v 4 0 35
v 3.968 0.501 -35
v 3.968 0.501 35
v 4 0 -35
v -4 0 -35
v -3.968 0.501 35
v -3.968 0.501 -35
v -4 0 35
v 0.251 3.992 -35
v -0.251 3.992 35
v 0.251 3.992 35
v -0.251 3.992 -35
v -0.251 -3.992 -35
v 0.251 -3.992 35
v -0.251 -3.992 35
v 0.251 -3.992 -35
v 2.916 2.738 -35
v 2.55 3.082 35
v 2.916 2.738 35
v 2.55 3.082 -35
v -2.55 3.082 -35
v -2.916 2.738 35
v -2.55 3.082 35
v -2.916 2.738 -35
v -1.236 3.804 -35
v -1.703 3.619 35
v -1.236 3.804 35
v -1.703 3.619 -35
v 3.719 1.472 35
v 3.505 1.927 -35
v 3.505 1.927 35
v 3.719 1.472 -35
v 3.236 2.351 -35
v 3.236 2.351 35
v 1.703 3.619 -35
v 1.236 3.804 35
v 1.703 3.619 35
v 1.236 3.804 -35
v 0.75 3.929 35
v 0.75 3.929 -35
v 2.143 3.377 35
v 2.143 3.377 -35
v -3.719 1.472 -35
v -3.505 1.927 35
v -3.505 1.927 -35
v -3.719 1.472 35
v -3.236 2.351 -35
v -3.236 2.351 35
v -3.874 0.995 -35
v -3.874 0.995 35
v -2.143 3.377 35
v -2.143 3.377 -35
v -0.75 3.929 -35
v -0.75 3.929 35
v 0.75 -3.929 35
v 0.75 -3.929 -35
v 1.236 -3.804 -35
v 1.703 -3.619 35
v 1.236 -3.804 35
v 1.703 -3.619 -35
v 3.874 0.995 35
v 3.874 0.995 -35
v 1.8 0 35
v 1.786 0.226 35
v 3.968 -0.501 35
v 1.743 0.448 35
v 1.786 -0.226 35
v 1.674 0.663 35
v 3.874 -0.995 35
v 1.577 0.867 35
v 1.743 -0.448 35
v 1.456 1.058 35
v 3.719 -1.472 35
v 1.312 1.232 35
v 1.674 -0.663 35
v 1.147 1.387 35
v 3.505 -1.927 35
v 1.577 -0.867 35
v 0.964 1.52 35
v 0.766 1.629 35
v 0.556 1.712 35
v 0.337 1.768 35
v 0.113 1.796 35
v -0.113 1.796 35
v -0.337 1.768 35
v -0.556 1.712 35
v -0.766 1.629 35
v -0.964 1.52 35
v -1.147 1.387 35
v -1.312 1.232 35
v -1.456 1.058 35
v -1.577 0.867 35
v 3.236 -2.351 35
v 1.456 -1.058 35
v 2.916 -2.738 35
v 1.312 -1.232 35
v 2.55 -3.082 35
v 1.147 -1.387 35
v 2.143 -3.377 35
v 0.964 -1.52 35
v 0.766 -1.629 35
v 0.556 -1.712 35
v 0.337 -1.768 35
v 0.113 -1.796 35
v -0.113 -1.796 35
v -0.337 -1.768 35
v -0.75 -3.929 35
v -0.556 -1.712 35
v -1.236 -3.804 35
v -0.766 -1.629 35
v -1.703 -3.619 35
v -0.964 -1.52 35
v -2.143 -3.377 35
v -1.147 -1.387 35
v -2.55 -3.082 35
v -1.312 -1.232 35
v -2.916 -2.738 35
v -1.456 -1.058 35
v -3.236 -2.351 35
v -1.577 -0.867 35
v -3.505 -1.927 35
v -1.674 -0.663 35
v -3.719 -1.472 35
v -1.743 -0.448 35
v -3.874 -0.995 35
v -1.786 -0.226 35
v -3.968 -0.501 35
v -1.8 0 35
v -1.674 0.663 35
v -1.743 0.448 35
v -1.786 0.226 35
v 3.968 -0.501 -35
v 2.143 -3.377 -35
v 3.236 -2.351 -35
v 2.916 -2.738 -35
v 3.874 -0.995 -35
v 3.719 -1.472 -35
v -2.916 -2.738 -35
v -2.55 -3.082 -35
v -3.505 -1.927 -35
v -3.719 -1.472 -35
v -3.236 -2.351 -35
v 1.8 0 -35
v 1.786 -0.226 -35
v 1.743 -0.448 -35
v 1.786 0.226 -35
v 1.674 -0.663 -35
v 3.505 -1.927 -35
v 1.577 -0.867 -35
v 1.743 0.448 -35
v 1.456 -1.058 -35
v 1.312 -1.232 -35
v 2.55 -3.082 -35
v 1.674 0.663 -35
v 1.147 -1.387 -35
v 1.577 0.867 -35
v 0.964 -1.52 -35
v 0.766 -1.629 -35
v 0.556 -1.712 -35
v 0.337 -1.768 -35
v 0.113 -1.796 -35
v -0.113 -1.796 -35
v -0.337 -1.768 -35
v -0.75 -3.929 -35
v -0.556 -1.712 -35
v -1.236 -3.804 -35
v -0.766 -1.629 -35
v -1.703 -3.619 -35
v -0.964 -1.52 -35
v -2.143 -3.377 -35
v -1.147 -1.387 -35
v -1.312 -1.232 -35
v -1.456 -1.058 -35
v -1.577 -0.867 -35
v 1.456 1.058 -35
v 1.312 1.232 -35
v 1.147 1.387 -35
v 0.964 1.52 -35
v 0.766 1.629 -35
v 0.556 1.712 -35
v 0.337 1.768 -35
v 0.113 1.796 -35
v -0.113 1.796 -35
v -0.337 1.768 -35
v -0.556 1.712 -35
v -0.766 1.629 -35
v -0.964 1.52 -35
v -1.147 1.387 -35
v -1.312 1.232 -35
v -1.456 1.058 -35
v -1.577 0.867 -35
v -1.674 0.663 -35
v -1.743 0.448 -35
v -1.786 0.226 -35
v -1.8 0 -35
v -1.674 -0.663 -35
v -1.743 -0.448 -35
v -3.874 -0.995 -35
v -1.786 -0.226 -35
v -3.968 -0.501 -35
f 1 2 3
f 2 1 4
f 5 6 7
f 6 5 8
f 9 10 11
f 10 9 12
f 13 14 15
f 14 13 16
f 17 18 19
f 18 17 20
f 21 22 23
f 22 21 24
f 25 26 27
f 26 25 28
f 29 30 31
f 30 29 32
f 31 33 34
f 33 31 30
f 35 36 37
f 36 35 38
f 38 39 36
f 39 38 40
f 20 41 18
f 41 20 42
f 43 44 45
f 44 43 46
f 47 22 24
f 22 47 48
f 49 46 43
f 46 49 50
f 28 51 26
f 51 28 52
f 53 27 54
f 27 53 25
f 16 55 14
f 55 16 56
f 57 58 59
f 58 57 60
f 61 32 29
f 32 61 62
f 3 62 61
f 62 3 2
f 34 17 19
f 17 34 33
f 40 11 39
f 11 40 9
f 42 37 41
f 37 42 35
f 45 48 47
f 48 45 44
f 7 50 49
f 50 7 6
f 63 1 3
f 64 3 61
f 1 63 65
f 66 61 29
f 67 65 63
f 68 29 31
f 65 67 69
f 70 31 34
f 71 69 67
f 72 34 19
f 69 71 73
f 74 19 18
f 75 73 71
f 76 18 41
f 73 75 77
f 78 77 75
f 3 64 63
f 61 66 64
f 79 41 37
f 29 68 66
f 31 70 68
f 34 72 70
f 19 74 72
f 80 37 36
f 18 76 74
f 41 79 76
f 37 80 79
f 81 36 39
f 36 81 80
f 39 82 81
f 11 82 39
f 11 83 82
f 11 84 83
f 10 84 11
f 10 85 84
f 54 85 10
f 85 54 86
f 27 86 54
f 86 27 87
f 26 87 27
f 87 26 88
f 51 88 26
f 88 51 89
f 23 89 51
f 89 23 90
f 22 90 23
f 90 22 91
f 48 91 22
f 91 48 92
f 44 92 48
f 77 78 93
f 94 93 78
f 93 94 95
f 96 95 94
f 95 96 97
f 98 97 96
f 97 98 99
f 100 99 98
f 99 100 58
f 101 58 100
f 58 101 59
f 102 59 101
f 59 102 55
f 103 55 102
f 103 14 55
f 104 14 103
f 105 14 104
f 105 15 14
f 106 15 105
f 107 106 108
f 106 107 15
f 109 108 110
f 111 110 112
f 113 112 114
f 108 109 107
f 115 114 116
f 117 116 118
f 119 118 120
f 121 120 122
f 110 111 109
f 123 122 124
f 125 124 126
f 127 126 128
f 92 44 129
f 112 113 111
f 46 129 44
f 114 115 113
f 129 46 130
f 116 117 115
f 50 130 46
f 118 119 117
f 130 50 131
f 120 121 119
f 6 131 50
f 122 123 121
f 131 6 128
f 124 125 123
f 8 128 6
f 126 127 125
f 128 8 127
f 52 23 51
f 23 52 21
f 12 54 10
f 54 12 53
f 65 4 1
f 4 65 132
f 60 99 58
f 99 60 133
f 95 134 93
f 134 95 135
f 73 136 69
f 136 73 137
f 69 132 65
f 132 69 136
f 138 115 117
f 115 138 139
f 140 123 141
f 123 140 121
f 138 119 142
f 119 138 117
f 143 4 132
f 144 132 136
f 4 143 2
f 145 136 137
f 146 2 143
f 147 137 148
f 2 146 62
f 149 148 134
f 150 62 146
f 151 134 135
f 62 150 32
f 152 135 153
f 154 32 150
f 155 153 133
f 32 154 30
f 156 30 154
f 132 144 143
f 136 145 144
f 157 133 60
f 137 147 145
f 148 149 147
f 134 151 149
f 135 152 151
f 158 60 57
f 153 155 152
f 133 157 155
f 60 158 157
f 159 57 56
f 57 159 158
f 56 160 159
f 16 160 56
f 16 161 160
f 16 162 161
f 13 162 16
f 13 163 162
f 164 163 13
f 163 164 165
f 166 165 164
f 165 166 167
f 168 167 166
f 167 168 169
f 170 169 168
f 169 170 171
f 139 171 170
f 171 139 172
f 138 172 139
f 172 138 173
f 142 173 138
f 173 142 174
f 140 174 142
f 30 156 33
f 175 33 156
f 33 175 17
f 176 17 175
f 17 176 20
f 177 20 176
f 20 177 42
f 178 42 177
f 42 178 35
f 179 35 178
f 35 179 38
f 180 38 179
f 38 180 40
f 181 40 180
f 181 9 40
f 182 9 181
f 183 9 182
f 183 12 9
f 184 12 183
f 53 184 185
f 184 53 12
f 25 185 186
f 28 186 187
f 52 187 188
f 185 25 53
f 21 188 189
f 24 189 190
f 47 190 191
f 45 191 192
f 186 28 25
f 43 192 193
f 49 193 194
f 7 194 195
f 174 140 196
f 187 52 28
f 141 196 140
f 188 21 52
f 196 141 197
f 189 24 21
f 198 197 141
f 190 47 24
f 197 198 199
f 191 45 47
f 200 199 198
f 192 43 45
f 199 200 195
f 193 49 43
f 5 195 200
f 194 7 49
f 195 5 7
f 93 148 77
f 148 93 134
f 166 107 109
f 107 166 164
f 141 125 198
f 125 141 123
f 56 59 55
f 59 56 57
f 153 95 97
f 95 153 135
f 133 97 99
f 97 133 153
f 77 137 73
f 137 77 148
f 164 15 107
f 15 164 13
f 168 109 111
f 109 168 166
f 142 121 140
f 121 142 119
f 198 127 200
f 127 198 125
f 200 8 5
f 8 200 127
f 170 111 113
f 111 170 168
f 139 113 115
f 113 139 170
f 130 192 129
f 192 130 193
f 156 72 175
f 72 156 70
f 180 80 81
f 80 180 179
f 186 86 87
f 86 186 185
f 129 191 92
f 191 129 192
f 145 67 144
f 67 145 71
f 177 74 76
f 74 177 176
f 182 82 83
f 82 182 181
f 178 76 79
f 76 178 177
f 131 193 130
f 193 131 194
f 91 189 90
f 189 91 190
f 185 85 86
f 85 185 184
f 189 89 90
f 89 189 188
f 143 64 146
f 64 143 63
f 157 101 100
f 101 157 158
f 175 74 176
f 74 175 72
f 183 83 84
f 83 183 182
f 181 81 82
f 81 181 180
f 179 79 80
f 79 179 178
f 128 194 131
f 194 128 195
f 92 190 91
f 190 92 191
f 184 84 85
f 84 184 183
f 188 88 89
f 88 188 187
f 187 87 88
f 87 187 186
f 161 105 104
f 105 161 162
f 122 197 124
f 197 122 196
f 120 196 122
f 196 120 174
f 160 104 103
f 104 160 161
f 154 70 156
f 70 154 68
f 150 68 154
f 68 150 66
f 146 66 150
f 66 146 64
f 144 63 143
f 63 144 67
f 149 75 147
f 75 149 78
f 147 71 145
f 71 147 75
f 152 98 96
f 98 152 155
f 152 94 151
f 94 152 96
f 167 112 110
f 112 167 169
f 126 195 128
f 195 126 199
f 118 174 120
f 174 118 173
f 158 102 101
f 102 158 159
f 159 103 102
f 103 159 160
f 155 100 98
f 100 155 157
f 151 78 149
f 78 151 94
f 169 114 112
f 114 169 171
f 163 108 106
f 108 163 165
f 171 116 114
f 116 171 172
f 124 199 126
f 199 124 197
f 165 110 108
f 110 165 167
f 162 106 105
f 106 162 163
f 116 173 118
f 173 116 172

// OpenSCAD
$fn = 50;


difference() {
	union() {
		translate(v = [0, 0, -35.0000000000]) {
			cylinder(h = 70, r = 4.0000000000);
		}
	}
	union() {
		translate(v = [0, 0, -100.0000000000]) {
			cylinder(h = 200, r = 1.8000000000);
		}
	}
}
